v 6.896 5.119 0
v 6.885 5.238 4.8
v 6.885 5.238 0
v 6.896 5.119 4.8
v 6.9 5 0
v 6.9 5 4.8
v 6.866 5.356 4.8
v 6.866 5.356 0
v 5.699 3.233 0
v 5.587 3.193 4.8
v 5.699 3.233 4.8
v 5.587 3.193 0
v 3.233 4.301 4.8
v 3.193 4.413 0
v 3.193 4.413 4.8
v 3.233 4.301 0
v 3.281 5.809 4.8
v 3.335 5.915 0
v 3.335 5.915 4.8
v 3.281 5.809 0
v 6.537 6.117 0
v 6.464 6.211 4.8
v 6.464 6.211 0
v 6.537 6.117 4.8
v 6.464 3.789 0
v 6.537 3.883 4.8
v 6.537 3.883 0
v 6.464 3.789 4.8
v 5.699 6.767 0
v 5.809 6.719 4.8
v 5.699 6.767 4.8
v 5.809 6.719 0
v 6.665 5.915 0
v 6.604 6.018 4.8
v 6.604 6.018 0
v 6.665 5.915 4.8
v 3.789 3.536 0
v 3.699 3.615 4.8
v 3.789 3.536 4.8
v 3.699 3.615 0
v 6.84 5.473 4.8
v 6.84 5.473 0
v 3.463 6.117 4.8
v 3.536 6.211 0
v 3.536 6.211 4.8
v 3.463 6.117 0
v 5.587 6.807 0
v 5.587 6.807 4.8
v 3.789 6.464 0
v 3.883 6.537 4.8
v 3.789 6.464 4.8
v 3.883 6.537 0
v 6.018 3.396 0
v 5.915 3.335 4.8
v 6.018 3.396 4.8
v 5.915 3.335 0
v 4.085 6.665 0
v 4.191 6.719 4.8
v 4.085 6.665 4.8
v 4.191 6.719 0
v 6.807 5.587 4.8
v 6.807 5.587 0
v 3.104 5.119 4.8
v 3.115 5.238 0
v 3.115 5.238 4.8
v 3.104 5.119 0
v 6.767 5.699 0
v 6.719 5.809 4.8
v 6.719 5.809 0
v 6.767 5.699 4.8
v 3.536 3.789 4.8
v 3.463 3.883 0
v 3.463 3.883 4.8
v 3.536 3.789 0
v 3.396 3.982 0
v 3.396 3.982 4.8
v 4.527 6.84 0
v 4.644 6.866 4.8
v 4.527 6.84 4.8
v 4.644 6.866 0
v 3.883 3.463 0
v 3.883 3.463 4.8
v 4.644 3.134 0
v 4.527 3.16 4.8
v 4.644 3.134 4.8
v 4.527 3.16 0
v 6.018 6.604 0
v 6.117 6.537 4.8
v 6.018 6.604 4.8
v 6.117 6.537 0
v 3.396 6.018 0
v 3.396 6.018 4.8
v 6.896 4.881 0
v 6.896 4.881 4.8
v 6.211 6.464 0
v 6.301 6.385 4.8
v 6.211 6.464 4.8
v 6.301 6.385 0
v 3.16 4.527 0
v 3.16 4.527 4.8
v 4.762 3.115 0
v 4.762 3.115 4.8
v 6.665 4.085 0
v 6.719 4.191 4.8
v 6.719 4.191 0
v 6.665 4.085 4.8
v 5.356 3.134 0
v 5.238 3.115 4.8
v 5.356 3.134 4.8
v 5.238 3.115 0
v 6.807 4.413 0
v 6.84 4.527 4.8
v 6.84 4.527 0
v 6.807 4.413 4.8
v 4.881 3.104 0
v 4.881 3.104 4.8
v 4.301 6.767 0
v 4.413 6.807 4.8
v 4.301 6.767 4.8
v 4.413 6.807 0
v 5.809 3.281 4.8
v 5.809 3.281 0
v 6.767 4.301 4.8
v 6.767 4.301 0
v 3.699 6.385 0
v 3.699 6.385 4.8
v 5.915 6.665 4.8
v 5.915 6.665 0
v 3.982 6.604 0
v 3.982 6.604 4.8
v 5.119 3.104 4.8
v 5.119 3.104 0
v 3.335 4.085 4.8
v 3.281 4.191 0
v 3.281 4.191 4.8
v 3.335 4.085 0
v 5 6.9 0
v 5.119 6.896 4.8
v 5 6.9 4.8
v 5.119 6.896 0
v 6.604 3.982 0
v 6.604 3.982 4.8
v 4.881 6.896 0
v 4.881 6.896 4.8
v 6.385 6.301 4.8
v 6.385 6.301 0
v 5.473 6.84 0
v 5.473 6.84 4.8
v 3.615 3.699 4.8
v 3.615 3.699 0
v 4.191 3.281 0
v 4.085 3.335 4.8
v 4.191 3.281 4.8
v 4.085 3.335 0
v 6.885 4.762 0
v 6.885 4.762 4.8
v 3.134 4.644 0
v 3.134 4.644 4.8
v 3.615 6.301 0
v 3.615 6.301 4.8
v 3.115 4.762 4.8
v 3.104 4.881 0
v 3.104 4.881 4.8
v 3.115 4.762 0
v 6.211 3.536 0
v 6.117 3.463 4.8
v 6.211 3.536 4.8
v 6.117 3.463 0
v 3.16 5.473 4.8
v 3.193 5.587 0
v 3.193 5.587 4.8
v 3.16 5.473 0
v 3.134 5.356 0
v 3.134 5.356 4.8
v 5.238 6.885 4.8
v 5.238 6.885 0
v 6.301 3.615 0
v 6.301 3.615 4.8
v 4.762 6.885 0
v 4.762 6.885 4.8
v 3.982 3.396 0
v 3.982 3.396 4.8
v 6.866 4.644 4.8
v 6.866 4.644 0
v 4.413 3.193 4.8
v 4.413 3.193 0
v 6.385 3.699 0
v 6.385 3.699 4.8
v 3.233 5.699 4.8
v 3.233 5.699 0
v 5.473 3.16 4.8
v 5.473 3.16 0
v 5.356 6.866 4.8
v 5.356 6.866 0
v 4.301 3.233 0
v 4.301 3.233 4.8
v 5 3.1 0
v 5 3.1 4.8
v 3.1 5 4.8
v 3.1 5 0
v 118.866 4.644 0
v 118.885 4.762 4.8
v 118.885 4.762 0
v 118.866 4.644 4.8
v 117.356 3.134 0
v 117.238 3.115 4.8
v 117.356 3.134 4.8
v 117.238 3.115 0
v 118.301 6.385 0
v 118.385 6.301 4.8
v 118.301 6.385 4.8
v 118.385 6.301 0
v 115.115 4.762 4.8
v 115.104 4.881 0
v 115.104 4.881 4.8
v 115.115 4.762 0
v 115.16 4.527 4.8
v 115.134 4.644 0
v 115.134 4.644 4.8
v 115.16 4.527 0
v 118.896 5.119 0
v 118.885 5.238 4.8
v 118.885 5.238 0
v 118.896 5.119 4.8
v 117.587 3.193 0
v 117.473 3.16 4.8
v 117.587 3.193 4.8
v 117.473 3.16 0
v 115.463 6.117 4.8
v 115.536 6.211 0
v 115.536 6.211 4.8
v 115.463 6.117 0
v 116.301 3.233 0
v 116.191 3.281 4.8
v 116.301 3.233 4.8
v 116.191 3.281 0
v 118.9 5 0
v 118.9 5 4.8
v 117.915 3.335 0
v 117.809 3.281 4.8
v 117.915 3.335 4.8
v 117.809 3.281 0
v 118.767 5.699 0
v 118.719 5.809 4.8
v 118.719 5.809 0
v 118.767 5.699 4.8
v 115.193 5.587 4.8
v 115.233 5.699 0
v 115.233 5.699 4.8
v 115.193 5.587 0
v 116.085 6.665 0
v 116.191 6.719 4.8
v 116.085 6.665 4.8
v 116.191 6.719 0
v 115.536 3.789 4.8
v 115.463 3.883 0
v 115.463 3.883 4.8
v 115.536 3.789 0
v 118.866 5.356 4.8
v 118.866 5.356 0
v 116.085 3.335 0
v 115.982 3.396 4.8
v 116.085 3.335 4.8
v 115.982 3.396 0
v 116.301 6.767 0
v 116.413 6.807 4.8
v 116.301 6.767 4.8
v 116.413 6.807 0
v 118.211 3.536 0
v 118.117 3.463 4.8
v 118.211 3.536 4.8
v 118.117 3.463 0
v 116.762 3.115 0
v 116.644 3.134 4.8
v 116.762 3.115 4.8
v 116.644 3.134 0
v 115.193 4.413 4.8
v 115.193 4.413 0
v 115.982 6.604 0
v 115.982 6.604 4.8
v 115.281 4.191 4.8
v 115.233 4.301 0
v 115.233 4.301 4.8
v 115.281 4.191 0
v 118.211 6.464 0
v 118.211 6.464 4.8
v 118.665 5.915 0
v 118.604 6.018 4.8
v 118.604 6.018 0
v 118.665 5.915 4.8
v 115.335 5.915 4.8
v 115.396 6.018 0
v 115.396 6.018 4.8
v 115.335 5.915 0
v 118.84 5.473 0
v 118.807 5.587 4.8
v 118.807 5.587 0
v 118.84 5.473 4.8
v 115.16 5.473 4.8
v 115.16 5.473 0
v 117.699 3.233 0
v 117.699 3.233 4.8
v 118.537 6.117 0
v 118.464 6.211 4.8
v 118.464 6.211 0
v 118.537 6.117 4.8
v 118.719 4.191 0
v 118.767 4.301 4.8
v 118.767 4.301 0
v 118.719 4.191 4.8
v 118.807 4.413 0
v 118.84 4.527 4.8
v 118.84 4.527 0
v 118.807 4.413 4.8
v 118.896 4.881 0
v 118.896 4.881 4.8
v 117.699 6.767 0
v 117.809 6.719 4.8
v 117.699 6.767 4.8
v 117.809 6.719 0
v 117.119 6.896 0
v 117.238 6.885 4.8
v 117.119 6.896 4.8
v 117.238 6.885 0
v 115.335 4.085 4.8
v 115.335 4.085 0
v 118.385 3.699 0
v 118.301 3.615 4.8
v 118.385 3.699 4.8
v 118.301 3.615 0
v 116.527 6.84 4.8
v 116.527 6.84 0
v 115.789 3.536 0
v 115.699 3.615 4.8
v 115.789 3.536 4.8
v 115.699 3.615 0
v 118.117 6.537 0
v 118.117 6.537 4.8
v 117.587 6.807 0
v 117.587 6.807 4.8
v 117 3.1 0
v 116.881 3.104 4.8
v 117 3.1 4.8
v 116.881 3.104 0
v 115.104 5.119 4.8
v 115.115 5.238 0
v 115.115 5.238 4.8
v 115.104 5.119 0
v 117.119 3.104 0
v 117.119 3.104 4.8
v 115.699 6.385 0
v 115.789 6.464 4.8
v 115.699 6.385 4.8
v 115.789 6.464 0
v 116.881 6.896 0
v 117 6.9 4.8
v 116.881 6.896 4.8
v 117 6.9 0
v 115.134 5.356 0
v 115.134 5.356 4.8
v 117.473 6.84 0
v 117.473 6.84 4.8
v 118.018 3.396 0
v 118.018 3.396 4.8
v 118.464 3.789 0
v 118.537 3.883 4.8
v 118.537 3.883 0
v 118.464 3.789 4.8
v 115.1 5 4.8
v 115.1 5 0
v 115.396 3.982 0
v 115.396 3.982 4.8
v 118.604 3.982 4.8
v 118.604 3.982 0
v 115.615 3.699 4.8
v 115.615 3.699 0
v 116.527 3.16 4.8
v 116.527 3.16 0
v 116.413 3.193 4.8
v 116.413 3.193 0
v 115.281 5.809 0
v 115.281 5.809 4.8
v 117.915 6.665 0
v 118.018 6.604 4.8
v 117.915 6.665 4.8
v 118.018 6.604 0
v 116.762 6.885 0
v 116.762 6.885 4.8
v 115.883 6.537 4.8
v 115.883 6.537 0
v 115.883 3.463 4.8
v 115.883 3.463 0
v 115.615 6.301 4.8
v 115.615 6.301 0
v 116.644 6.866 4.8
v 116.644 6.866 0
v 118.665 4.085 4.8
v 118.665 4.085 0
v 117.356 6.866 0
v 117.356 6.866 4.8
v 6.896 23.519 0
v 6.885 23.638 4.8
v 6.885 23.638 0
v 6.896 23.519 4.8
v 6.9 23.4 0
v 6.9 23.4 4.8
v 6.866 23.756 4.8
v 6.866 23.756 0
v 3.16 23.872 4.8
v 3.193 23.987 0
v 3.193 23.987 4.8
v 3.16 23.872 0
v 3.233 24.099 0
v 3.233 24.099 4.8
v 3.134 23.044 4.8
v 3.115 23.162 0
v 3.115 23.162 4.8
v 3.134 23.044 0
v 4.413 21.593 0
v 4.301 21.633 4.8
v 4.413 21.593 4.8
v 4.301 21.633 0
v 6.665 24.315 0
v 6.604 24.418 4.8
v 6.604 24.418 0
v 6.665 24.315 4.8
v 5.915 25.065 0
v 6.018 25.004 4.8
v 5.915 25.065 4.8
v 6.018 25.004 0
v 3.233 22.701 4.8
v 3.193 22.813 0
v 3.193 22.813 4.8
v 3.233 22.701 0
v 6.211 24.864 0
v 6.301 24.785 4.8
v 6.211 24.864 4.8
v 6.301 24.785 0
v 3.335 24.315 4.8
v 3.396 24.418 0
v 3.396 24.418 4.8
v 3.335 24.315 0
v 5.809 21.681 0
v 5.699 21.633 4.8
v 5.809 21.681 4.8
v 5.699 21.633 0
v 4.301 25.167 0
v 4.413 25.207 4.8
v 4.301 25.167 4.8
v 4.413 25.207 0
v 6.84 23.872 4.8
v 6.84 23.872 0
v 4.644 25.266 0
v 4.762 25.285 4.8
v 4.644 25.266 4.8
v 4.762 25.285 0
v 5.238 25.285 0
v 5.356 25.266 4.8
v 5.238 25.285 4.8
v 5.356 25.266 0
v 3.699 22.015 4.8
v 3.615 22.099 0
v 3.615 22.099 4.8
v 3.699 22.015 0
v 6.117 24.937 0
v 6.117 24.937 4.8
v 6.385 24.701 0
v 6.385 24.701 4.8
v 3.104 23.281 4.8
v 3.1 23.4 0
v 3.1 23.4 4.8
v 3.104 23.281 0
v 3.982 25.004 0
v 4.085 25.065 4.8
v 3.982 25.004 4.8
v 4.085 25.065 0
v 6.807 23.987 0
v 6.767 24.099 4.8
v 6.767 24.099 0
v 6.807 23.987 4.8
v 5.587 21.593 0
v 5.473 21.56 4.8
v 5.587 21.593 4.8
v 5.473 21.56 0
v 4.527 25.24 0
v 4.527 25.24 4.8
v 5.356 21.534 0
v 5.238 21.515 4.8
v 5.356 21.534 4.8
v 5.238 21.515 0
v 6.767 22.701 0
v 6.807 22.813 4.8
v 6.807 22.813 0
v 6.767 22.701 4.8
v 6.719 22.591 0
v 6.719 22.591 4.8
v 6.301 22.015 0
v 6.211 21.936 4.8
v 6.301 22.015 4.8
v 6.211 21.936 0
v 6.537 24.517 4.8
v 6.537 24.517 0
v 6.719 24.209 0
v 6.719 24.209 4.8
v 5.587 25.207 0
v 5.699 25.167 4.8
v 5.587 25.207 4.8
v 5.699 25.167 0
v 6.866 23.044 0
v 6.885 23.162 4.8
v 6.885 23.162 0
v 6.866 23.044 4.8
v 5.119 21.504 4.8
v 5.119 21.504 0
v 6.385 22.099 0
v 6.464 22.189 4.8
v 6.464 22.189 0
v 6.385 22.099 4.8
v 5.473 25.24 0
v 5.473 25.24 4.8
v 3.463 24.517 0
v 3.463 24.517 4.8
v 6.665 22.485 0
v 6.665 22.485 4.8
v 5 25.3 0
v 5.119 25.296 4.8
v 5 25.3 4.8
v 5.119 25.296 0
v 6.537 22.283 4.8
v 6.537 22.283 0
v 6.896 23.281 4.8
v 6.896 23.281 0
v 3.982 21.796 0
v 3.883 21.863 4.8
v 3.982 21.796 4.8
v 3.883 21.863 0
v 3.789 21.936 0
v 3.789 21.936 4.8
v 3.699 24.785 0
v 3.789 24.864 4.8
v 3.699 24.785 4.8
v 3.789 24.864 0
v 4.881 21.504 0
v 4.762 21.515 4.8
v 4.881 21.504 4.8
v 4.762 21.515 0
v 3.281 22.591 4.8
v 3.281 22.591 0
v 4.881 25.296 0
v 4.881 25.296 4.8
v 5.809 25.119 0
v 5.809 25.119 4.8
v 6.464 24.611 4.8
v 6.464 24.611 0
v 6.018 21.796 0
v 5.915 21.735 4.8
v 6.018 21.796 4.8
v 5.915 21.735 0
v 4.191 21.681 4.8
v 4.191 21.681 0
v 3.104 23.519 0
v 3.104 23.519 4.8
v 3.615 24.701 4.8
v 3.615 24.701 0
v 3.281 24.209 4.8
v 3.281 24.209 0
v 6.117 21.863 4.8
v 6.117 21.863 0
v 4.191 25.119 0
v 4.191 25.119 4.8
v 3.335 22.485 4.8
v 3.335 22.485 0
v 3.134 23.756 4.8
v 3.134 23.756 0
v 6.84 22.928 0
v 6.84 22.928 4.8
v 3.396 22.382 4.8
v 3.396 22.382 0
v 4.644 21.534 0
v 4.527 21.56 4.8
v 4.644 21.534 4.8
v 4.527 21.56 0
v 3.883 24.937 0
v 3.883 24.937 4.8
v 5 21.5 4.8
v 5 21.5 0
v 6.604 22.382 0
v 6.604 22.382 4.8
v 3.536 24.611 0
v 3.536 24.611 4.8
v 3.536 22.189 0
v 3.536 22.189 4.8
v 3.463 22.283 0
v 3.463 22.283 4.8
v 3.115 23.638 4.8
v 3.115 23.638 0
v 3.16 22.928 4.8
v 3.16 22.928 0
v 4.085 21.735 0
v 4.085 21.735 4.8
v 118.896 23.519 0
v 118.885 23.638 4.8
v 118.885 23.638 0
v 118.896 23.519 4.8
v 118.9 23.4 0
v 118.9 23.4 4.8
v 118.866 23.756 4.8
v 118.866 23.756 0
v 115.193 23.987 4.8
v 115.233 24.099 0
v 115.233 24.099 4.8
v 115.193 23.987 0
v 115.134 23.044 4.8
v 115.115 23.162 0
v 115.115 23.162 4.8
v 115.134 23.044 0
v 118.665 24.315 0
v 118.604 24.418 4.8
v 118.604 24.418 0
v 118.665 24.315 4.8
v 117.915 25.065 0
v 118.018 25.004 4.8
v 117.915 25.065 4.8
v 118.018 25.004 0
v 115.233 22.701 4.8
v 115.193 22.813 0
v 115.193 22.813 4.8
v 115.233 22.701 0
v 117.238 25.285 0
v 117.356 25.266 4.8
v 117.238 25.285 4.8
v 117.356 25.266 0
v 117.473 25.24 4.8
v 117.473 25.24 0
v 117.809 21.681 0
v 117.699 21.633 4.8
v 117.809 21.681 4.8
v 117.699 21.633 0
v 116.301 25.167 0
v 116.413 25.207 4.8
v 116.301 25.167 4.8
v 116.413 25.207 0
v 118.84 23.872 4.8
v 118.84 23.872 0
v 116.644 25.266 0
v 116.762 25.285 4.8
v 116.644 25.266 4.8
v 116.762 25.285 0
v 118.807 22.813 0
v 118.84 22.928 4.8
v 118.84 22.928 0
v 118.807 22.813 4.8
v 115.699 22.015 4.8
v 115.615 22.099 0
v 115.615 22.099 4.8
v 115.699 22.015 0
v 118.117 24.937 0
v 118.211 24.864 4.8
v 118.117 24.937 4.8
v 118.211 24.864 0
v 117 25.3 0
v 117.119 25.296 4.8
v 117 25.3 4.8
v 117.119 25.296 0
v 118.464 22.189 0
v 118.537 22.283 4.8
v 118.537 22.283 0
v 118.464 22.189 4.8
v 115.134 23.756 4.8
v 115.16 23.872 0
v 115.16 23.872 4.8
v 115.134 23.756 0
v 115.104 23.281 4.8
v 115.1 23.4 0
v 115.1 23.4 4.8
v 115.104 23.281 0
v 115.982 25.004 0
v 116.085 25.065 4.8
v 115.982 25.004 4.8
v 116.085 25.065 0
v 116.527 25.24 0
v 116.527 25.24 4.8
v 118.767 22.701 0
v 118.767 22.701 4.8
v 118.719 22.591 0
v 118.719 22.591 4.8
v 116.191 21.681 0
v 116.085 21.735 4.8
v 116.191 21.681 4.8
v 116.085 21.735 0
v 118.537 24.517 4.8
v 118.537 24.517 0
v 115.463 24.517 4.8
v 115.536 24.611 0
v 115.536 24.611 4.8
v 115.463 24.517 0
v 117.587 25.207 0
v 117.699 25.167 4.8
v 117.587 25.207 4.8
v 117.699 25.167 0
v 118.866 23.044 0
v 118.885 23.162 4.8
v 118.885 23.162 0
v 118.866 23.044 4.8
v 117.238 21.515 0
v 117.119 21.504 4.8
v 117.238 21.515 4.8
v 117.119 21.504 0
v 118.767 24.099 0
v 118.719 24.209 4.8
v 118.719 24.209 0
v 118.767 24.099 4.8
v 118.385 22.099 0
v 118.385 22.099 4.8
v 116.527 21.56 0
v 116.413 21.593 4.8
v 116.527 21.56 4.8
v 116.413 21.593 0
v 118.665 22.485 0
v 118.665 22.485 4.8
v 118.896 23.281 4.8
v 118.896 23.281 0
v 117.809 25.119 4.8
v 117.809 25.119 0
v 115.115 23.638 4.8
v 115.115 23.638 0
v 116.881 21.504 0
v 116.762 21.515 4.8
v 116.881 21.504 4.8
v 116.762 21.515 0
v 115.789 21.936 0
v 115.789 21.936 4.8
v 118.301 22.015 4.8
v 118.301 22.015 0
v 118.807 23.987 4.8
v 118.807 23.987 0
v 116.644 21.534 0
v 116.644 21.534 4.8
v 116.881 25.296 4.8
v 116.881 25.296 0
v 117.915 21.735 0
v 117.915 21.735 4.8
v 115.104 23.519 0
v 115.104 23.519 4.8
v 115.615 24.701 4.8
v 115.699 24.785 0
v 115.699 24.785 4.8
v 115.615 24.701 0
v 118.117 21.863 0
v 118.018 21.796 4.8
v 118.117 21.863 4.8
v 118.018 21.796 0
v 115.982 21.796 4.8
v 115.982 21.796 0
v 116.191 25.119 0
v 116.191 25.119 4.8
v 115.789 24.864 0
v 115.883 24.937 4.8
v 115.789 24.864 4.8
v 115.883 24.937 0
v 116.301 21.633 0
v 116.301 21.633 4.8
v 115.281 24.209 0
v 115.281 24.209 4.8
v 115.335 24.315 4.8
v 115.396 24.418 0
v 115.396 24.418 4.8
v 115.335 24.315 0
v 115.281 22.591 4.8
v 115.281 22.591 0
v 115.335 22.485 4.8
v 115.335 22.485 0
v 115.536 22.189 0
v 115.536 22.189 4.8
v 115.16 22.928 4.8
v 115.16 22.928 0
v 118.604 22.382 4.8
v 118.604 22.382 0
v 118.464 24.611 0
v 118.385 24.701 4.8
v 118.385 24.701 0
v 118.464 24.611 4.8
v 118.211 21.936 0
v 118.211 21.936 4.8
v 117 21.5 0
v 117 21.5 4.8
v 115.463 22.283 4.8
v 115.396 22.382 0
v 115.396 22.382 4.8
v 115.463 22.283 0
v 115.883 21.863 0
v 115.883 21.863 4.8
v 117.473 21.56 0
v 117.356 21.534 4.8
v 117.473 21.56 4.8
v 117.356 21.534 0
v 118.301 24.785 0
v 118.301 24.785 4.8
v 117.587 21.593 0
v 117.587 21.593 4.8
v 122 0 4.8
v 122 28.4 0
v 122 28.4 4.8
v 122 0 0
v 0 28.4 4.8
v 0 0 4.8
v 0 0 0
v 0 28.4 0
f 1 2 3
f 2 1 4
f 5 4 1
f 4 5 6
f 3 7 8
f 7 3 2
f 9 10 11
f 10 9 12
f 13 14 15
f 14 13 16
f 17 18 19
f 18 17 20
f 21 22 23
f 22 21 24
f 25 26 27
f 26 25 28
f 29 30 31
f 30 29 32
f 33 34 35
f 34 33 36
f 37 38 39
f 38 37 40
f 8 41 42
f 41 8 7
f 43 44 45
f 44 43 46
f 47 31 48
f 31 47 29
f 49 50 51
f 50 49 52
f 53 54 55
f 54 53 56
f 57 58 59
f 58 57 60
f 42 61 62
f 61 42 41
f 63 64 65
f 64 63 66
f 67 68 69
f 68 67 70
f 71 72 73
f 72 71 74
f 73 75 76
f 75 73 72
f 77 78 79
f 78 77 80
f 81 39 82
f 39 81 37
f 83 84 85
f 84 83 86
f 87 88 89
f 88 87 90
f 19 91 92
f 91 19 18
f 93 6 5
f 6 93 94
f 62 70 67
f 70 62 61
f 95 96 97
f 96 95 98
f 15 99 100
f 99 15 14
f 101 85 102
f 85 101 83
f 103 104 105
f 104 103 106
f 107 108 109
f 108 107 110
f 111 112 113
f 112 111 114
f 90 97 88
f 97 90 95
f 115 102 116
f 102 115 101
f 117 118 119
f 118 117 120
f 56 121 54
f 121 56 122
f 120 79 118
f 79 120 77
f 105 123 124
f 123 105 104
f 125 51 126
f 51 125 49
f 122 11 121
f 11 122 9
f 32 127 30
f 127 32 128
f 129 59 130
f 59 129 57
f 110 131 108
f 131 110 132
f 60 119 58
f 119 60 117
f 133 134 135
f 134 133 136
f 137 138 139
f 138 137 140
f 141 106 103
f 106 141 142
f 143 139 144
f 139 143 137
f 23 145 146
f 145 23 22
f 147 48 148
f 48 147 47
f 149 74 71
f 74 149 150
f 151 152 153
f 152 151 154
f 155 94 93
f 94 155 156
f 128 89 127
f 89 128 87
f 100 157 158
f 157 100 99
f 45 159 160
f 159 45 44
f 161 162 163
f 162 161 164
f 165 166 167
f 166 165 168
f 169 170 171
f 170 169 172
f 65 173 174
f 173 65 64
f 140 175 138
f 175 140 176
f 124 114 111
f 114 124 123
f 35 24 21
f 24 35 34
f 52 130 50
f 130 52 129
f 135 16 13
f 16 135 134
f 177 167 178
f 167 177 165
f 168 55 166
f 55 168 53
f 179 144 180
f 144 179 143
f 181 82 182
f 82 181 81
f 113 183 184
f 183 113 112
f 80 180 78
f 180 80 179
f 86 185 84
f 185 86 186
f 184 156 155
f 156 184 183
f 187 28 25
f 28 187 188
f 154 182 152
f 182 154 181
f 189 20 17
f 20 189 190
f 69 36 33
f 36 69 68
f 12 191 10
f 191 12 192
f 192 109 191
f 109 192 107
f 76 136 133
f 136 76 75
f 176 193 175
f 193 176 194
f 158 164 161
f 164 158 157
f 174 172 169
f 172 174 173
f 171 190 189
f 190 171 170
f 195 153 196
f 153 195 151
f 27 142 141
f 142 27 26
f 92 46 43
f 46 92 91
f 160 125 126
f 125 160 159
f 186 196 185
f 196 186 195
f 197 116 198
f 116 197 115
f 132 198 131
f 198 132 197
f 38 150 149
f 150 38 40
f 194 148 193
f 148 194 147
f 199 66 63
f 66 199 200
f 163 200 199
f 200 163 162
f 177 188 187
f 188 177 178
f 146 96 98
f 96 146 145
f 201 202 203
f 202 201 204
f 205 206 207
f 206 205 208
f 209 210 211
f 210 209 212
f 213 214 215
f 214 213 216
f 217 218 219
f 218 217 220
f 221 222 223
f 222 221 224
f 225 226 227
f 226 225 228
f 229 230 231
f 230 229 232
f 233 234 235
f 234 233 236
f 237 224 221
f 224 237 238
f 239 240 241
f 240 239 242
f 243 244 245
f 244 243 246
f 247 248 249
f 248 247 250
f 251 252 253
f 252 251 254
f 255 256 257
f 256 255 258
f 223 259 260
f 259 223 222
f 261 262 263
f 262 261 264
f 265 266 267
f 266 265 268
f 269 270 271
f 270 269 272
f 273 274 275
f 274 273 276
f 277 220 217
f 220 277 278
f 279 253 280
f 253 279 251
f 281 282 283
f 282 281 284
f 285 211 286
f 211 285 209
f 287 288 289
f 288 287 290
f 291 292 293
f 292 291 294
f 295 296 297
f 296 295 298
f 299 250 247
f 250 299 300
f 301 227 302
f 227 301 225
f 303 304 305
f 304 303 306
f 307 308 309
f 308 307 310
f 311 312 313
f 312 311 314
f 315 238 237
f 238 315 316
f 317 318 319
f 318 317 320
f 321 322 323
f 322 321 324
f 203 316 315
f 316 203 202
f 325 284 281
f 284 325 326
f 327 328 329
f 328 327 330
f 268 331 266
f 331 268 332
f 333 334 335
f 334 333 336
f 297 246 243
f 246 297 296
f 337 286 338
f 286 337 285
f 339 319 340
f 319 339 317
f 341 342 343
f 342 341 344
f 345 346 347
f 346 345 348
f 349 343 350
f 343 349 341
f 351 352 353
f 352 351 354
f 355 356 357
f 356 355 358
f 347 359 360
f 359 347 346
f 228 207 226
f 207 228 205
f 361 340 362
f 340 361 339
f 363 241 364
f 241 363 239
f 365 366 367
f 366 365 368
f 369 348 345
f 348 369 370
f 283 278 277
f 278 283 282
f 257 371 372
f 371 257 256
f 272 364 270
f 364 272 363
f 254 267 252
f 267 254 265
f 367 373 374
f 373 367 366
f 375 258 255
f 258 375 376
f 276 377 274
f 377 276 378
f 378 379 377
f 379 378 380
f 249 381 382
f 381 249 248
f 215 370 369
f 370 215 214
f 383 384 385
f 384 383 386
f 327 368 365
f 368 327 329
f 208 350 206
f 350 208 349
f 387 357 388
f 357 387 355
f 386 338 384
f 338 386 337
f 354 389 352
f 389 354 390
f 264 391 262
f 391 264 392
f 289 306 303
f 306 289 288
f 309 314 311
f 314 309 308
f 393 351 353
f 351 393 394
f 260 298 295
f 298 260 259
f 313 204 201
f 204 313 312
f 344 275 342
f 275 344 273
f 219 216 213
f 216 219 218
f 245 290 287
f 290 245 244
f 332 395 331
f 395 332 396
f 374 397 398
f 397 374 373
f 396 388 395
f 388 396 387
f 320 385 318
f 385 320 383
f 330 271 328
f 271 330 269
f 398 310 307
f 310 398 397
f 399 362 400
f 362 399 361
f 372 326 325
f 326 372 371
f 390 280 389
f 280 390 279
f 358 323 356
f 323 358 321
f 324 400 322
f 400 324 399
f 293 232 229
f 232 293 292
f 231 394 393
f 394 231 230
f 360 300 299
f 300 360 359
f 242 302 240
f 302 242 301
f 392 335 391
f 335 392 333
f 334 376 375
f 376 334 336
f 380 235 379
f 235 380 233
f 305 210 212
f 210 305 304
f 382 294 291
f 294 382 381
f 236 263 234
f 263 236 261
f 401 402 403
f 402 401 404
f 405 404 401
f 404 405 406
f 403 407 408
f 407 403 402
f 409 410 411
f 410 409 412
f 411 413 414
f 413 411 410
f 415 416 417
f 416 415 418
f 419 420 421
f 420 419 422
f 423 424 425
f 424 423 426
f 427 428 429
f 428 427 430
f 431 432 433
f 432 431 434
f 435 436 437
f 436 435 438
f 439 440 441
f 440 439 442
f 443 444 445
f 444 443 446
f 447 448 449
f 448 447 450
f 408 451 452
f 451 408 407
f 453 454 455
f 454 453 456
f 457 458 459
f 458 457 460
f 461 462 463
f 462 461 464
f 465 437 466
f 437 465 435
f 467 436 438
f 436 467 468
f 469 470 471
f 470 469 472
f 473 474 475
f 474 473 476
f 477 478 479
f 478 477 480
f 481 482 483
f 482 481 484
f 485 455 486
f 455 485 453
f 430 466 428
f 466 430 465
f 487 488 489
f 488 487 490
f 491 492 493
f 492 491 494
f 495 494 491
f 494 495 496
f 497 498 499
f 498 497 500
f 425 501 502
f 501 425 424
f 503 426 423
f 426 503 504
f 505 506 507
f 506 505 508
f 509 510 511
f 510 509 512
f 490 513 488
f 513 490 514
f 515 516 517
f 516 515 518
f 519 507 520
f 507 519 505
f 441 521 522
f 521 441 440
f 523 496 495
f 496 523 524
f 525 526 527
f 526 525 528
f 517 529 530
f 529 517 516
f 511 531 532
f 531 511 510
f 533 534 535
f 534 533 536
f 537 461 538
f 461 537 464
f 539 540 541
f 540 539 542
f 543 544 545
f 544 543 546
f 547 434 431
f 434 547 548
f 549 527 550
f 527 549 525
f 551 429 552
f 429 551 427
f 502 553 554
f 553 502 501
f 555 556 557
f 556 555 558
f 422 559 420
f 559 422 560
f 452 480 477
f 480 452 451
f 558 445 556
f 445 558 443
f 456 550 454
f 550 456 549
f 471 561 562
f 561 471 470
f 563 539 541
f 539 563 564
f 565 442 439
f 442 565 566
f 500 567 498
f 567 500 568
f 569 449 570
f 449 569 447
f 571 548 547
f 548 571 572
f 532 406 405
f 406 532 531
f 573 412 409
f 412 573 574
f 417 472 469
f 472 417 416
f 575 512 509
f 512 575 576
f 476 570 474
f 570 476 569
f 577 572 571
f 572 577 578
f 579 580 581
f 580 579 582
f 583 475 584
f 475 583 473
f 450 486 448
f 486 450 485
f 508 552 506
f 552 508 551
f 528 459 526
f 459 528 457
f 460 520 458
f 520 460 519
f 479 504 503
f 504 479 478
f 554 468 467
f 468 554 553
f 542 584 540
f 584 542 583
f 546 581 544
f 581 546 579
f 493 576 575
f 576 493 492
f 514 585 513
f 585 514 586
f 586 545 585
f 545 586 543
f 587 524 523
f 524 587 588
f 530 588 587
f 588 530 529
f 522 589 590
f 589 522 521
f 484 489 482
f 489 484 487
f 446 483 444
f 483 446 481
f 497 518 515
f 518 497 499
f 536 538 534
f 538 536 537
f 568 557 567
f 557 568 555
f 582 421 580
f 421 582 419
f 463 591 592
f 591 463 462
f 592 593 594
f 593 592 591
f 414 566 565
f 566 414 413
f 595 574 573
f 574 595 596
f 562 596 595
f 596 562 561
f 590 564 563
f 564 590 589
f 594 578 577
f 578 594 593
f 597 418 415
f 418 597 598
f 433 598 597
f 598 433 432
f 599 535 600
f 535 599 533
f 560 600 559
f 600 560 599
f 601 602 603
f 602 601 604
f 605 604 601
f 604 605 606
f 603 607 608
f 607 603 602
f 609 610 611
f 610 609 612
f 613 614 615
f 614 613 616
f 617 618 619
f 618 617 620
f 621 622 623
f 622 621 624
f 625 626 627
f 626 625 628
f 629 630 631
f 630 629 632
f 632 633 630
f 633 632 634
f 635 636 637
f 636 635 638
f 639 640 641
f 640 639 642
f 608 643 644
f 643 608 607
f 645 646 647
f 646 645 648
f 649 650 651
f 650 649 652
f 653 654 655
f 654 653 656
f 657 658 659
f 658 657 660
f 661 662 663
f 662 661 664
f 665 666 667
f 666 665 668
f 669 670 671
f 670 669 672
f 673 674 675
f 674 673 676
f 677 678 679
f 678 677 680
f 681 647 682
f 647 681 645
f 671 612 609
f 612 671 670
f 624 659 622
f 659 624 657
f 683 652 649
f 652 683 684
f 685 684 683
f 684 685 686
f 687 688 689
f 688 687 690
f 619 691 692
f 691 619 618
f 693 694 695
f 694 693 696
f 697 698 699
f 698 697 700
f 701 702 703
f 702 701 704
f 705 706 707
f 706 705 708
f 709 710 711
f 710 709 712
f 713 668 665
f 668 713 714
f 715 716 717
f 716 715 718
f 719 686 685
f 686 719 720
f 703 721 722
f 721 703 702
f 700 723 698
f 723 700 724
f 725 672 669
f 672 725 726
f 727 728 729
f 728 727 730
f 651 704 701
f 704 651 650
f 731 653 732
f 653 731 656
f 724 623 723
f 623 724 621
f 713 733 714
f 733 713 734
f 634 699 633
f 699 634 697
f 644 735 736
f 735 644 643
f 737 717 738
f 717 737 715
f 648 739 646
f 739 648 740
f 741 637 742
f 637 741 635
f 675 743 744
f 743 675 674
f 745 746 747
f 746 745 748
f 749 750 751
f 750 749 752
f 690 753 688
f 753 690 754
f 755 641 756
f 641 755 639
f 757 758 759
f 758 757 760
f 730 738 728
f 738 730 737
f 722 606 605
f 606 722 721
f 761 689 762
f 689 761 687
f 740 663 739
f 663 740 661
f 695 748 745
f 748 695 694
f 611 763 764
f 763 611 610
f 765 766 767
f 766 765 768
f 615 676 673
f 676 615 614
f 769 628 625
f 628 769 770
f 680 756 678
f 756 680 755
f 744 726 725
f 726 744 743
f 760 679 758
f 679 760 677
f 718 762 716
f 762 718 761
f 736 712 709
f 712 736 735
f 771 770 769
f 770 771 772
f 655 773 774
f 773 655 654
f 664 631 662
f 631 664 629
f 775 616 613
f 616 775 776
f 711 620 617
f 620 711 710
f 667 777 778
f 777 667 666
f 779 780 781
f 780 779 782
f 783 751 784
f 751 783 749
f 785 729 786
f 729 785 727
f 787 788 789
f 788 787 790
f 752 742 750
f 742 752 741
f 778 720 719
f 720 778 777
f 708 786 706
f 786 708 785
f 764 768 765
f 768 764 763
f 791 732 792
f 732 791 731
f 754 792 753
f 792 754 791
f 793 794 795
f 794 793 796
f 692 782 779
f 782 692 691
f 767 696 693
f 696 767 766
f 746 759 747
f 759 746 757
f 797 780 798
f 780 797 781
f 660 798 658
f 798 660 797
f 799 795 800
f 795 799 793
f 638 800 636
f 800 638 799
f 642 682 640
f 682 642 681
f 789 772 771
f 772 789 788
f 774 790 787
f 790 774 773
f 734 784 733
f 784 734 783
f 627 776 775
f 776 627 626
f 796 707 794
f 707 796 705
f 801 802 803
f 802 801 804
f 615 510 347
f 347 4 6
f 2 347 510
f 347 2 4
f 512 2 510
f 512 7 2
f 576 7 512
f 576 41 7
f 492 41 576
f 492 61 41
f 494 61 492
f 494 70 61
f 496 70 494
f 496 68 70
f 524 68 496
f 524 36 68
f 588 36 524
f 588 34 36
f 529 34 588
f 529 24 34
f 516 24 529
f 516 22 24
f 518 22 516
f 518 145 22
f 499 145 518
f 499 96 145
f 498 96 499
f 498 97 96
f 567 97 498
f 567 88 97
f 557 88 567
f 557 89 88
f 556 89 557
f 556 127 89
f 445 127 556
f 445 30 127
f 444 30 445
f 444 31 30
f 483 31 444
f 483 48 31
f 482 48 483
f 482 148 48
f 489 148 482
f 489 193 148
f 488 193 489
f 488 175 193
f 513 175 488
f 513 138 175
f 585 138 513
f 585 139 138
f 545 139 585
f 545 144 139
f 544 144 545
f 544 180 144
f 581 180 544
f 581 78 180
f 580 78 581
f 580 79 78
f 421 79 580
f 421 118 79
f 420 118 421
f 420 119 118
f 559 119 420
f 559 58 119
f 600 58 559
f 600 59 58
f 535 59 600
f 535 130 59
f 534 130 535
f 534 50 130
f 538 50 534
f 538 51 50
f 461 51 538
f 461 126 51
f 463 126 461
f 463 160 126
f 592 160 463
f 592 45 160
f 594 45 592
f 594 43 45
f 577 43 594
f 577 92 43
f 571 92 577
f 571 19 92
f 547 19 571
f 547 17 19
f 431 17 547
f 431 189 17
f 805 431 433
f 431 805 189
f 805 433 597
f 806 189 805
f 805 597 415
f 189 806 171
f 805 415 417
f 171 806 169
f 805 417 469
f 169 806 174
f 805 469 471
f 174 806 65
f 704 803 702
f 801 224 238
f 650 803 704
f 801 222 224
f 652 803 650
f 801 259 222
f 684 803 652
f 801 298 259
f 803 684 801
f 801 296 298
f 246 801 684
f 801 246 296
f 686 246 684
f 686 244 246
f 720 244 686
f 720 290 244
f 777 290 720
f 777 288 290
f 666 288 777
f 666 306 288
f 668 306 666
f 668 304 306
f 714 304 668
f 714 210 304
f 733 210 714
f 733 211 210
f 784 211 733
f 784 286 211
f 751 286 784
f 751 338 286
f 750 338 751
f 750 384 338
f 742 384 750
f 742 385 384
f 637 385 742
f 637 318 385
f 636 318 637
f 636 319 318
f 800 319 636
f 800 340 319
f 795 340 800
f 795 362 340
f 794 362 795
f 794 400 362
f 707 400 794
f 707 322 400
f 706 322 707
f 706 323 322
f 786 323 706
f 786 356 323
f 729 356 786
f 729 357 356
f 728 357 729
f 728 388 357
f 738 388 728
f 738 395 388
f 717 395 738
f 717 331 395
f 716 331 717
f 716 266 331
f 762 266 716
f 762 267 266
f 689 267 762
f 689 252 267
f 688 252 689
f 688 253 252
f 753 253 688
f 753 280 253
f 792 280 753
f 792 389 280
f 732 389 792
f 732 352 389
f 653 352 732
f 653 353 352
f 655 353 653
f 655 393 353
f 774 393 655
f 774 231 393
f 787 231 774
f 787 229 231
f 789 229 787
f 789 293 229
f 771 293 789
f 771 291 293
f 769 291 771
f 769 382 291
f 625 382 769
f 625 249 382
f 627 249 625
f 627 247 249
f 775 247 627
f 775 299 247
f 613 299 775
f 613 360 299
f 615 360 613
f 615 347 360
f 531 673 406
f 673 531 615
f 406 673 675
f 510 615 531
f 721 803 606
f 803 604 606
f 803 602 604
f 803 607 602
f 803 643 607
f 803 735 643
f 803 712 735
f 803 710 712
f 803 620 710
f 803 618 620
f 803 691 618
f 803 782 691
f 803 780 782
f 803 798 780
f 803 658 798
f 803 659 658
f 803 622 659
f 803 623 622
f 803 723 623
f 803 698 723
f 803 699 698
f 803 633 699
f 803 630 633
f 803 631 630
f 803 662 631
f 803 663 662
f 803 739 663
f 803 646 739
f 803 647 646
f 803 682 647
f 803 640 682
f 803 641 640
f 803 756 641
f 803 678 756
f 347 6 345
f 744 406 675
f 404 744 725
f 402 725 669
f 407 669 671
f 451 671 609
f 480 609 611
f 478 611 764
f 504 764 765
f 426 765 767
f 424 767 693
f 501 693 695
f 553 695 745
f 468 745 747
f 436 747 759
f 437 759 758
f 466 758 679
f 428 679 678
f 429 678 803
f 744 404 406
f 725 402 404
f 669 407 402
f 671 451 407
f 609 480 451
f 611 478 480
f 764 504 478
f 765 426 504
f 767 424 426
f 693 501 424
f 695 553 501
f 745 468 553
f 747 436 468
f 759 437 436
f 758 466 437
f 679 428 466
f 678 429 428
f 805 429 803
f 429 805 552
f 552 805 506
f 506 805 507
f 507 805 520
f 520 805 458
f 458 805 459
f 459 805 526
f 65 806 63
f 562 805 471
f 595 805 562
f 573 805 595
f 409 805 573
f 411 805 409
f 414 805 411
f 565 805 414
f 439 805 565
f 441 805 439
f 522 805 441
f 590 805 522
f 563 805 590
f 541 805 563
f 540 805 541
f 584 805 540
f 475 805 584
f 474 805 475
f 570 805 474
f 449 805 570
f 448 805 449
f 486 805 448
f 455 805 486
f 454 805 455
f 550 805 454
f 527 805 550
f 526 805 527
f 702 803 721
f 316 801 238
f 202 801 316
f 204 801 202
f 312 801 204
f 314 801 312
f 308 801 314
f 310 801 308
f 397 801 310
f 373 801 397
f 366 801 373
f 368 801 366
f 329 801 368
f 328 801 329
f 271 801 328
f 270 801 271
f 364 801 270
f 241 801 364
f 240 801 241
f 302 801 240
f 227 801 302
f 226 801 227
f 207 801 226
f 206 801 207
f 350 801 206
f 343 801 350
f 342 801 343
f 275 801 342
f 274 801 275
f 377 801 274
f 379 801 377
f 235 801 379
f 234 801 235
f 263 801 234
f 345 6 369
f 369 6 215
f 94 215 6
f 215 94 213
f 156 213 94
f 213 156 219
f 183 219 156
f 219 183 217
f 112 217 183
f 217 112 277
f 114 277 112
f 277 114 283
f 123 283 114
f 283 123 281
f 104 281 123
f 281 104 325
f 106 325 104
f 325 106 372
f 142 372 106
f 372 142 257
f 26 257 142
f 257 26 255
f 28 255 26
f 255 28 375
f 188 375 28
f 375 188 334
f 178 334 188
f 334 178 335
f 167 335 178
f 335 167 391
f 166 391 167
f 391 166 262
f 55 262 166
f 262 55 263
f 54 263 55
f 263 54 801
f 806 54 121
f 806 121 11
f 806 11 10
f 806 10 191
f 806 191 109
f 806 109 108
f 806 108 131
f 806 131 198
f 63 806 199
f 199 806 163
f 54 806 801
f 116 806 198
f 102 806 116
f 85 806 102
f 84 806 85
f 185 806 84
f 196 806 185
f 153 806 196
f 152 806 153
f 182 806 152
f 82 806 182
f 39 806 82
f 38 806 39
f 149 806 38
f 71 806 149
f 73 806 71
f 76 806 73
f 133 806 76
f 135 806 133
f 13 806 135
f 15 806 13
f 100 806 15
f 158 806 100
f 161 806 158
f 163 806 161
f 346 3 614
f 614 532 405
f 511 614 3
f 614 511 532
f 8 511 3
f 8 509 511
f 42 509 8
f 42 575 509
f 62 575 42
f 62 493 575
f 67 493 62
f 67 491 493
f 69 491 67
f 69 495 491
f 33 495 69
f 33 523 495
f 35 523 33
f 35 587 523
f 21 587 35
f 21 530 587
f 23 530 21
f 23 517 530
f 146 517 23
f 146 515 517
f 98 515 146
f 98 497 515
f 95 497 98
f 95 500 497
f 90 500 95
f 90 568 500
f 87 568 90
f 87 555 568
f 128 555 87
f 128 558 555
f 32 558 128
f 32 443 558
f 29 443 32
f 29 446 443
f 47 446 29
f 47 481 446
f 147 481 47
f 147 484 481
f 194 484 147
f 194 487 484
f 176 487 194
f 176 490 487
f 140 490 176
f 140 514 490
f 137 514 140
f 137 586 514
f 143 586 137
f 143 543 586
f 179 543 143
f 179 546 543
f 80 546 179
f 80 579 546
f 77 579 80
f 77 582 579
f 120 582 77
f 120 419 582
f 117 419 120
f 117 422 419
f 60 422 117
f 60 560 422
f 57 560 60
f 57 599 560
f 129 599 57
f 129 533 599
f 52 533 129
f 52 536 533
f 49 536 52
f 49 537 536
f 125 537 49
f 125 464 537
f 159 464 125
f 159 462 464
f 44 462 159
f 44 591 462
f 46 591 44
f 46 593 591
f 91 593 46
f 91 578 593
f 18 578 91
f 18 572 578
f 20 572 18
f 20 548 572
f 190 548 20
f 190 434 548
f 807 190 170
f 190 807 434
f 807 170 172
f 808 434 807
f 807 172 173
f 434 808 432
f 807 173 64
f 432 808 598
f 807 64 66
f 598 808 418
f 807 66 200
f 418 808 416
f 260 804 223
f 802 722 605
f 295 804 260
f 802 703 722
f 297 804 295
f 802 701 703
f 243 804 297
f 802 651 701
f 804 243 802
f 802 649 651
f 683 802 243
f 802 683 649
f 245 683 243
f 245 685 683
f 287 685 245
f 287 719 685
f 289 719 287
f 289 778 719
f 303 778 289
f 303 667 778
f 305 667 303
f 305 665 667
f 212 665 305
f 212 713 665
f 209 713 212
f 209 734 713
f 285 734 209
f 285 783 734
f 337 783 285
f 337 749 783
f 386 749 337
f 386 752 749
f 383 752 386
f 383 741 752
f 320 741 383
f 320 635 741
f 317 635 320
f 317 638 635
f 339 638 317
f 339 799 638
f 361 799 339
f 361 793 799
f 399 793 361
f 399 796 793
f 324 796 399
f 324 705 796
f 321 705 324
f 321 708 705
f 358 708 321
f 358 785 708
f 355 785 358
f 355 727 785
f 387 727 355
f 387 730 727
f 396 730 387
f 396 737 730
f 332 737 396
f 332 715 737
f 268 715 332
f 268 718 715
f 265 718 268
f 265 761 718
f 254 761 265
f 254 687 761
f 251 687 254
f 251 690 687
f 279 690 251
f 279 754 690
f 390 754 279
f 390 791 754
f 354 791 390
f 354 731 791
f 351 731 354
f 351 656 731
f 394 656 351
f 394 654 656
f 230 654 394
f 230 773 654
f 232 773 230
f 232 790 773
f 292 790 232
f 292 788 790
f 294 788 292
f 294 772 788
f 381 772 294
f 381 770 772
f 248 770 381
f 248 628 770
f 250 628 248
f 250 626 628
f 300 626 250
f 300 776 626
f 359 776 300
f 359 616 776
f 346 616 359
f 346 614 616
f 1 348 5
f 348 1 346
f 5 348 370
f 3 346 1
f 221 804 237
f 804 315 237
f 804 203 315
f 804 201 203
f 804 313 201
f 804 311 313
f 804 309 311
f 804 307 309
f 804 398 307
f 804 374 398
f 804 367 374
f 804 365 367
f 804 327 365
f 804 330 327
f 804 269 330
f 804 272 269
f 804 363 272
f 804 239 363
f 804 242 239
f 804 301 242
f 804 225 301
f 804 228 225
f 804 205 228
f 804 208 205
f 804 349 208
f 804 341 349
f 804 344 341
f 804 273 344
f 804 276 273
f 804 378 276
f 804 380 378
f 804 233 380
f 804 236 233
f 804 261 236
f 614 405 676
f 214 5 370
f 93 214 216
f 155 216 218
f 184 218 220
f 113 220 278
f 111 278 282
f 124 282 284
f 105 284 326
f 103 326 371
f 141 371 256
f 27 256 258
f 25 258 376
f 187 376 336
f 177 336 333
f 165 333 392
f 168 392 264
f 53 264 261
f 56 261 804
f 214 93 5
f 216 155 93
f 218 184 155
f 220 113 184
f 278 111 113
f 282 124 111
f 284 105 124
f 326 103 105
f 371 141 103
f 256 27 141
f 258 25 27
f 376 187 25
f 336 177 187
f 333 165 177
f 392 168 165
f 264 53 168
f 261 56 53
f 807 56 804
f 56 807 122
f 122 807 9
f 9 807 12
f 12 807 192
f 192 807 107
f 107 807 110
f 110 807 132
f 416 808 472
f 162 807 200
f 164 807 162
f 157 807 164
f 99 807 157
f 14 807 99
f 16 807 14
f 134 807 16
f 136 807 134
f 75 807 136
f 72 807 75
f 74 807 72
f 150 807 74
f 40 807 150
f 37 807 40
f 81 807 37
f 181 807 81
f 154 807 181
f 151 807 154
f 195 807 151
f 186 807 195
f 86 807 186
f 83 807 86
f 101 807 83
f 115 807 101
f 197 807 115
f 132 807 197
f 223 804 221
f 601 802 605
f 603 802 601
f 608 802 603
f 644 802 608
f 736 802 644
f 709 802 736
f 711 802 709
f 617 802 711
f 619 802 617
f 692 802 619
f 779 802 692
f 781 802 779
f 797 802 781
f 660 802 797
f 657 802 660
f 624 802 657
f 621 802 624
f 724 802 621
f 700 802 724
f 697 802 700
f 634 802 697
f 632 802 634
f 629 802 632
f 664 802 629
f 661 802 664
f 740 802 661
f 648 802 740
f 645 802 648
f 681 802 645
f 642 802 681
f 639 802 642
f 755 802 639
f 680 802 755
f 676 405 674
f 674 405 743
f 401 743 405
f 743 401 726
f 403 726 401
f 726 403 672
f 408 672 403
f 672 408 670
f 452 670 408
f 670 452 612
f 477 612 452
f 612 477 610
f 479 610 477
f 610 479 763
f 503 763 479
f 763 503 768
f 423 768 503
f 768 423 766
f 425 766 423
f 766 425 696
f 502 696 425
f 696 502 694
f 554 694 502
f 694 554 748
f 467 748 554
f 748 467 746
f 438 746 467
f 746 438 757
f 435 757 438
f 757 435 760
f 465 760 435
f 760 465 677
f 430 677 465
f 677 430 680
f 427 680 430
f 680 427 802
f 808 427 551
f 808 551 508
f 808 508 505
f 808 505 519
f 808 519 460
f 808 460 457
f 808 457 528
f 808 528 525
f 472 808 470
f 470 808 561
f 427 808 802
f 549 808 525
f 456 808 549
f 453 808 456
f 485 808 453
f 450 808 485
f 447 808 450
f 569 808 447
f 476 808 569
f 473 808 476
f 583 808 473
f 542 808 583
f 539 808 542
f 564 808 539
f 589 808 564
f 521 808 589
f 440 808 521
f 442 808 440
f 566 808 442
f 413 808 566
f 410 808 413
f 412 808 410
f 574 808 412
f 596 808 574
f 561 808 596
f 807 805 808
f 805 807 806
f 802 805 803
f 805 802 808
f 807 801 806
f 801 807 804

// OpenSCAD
// file: ../libraries/commons.scad
module forEachCoord(throws_coords_list) {
    for (coords = throws_coords_list)
        translate(
            [
                coords[0] == undef ? 0 : coords[0],
                coords[1] == undef ? 0 : coords[1],
                coords[2] == undef ? 0 : coords[2],
            ]
        )
            children();
}


// @todo
module forEachPointCoord(throws_coords_list) {
    for (coords = throws_coords_list)
        translate(
            [
                coords[0] == undef ? 0 : coords[0],
                coords[1] == undef ? 0 : coords[1],
                coords[2] == undef ? 0 : coords[2],
            ]
        )
            children();
}
// file: ../configurations/global.scad
housing_facades_throws_diameter = 3.8;

// external size
case_external_x_size = 90;
case_external_y_size = 140;
case_external_z_size = 38;
case_external_panes_thickness = 4.8;

facade_front_round_edges_radius = 5;
facade_throws_margin = 5;

facade_front_fixation_throws_diameter = housing_facades_throws_diameter;

// facade corners
facade_corners_offset_lenght = 9;
facade_corners_main_x_size = 19;
facade_corners_main_y_size = 19;
facade_corners_main_thickness = 11;

facade_fn = 100;


facade_controller_coords = [
    case_external_x_size / 2,
    case_external_y_size / 2 - 30,
];


// Screen frames
screen_frame_electronic_board_margin = 3;
screen_frame_throw_diameter = 3.5;
screen_frame_piece_z_size = 1.5;
screen_frame_piece_glass_embedding_margin = 1;
screen_frame_piece_glass_embedding_z_depth = 1;
screen_frame_facade_piece_z_size = 1;
screen_frame_fn = 100;

screen_glass_visible_zone_x_margin = 0.7;
screen_glass_visible_zone_y_margin = 0.7;
screen_glass_z_size = 1;

facade_screen_coords = [
    case_external_x_size / 2,
    case_external_y_size / 2 + 28,
];


// Generics
insert_throw_diameter = 4.2;
insert_throw_length = 6 + 2;


// Controller facade
controller_breadboard_x_size_point = 28;
controller_breadboard_y_size_point = 9;

controller_facade_z_size = 2;
controller_facade_button_throw_margin = 1;
controller_facade_small_button_throw_margin = 0.5;
controller_facade_a_b_button_throw_margin = 0.5;

controller_facade_border_rounded_border_1 = 5;
controller_facade_border_rounded_border_2 = 4;

controller_facade_with_border_x_size = 82;
controller_facade_with_border_y_size = 47;

controller_facade_border_throws_margin = 5;
controller_braidboard_throw_margin = 1;

controller_facade_border_fn = 80;


// Cross Button
controller_cross_button_x_y_size = 20;
controller_cross_button_z_size = 4;
controller_cross_button_thickness = 6;
controller_cross_button_round_edges_radius = 1;
controller_cross_button_support_x_y_size = 22;
controller_cross_button_support_z_size = 1;
controller_cross_button_fn = 150;


// A and B Buttons
controller_a_b_button_diameter = 7.5;
controller_a_b_button_z_size = 4;
controller_a_b_button_support_diameter = 9.5;
controller_a_b_button_support_z_size = 1;
controller_a_b_button_fn = 80;


// small Buttons
controller_small_button_diameter = 5.5;
controller_small_button_z_size = 3;
controller_small_button_support_diameter = 7.5;
controller_small_button_support_z_size = 1;
controller_small_button_fn = 80;

// Directional cross
controller_directional_cross_points_coords = [6, 5];
controller_start_button_points_coords = [14, 3];
controller_select_button_points_coords = [18, 3];
controller_menu_button_points_coords = [14, 7];
controller_option_button_points_coords = [18, 7];
controller_a_button_points_coords = [23, 4];
controller_b_button_points_coords = [27, 6];
controller_bolt_throws_list = [
    [2, 2],
    [2, 8],
    [10, 2],
    [10, 8],
    [27, 2],
    [23, 8],
];


// usb charger holder
usb_charger_support_total_x_size = 17.57 + 15;
usb_charger_support_total_y_size = 12;
usb_charger_support_total_z_size = 2;


usb_charger_fixation_support_z_size = 4.5;
usb_charger_encaps_x_size = 17.57 + 1;
usb_charger_encaps_y_size = 27.85 + 1;
usb_charger_encaps_z_size = 1;

usb_charger_facade_x_fixation_spacing = 42;
usb_charger_facade_y_size = 1.36;
usb_charger_facade_z_size = 14;

usb_charger_throw_diameter = 3.5;
usb_charger_facade_holder_z_offset = 3.5; //
usb_charger_fixation_facade_y_margin = 0.5;
usb_charger_throw_offset_y = 4.5;
usb_charger_throw_offset_x = 3.5;
usb_charger_fadace_fn = 100;

usb_charger_external_facade_main_throw_margin = 2;
usb_charger_external_facade_main_throw_diameter = housing_facades_throws_diameter;

usb_charger_coords = [
    28, 15
];


facade_top_on_off_button_throw_diameter = 12.8;

facade_top_on_off_button_coords = [
    case_external_x_size / 2 + 18,
    case_external_z_size / 2
];


// Bolt join Piece Mother board
bolt_join_mother_board_internal_diameter = 3.5;
bolt_join_mother_board_external_diameter = 3.5 + (0.4 * 6);
bolt_join_mother_board_height = 3;

// Bolt join Piece GamePadController
bolt_join_game_pad_internal_diameter = 3.5;
bolt_join_game_pad_external_diameter = 3.5 + (0.4 * 6);
bolt_join_game_pad_height = 7.75 - 1.5; // 7.45

bolt_join_fn = 500;


// Mother board breadboard
mother_board_x_size_point = 25;
mother_board_y_size_point = 32;

mother_board_coords = [
    case_external_x_size / 2 - ((mother_board_x_size_point+1) * 2.54) / 2,
    44,
    3
];

mother_board_bolt_throws_list = [
    [3, 2],
    [3, 17],
    [23, 2],
    [23, 17],
];


// Speaker
speaker_facade_throw_diameter = 28 + 1;
speaker_facade_z_size = 1.36;
speaker_facade_rounded_radius = 5;
// main file
include <./../configurations/global.scad>
use <./../libraries/commons.scad>

include <./../configurations/global.scad>


module facadeLeftPiece(
    x_size = case_external_y_size - (facade_corners_offset_lenght * 2),
    y_size = case_external_z_size - (case_external_panes_thickness * 2),
    z_size = case_external_panes_thickness,
    throws_diameter = housing_facades_throws_diameter,
    throws_margin = facade_throws_margin,
    $fn = facade_fn
) {
    echo(str("x_size: ", x_size, " y_size: ", y_size, " z_size: ", z_size));
    difference() {
        color("BurlyWood")
            cube([x_size, y_size, z_size]);

        translate([0, 0, -z_size / 2])
            forEachCoord([
                [throws_margin, throws_margin],
                [x_size - throws_margin, throws_margin],
                [throws_margin, y_size - throws_margin],
                [x_size - throws_margin, y_size - throws_margin,],
            ])
                cylinder(h = z_size * 2, d = throws_diameter, $fn = $fn);
    }

}


facadeLeftPiece();
